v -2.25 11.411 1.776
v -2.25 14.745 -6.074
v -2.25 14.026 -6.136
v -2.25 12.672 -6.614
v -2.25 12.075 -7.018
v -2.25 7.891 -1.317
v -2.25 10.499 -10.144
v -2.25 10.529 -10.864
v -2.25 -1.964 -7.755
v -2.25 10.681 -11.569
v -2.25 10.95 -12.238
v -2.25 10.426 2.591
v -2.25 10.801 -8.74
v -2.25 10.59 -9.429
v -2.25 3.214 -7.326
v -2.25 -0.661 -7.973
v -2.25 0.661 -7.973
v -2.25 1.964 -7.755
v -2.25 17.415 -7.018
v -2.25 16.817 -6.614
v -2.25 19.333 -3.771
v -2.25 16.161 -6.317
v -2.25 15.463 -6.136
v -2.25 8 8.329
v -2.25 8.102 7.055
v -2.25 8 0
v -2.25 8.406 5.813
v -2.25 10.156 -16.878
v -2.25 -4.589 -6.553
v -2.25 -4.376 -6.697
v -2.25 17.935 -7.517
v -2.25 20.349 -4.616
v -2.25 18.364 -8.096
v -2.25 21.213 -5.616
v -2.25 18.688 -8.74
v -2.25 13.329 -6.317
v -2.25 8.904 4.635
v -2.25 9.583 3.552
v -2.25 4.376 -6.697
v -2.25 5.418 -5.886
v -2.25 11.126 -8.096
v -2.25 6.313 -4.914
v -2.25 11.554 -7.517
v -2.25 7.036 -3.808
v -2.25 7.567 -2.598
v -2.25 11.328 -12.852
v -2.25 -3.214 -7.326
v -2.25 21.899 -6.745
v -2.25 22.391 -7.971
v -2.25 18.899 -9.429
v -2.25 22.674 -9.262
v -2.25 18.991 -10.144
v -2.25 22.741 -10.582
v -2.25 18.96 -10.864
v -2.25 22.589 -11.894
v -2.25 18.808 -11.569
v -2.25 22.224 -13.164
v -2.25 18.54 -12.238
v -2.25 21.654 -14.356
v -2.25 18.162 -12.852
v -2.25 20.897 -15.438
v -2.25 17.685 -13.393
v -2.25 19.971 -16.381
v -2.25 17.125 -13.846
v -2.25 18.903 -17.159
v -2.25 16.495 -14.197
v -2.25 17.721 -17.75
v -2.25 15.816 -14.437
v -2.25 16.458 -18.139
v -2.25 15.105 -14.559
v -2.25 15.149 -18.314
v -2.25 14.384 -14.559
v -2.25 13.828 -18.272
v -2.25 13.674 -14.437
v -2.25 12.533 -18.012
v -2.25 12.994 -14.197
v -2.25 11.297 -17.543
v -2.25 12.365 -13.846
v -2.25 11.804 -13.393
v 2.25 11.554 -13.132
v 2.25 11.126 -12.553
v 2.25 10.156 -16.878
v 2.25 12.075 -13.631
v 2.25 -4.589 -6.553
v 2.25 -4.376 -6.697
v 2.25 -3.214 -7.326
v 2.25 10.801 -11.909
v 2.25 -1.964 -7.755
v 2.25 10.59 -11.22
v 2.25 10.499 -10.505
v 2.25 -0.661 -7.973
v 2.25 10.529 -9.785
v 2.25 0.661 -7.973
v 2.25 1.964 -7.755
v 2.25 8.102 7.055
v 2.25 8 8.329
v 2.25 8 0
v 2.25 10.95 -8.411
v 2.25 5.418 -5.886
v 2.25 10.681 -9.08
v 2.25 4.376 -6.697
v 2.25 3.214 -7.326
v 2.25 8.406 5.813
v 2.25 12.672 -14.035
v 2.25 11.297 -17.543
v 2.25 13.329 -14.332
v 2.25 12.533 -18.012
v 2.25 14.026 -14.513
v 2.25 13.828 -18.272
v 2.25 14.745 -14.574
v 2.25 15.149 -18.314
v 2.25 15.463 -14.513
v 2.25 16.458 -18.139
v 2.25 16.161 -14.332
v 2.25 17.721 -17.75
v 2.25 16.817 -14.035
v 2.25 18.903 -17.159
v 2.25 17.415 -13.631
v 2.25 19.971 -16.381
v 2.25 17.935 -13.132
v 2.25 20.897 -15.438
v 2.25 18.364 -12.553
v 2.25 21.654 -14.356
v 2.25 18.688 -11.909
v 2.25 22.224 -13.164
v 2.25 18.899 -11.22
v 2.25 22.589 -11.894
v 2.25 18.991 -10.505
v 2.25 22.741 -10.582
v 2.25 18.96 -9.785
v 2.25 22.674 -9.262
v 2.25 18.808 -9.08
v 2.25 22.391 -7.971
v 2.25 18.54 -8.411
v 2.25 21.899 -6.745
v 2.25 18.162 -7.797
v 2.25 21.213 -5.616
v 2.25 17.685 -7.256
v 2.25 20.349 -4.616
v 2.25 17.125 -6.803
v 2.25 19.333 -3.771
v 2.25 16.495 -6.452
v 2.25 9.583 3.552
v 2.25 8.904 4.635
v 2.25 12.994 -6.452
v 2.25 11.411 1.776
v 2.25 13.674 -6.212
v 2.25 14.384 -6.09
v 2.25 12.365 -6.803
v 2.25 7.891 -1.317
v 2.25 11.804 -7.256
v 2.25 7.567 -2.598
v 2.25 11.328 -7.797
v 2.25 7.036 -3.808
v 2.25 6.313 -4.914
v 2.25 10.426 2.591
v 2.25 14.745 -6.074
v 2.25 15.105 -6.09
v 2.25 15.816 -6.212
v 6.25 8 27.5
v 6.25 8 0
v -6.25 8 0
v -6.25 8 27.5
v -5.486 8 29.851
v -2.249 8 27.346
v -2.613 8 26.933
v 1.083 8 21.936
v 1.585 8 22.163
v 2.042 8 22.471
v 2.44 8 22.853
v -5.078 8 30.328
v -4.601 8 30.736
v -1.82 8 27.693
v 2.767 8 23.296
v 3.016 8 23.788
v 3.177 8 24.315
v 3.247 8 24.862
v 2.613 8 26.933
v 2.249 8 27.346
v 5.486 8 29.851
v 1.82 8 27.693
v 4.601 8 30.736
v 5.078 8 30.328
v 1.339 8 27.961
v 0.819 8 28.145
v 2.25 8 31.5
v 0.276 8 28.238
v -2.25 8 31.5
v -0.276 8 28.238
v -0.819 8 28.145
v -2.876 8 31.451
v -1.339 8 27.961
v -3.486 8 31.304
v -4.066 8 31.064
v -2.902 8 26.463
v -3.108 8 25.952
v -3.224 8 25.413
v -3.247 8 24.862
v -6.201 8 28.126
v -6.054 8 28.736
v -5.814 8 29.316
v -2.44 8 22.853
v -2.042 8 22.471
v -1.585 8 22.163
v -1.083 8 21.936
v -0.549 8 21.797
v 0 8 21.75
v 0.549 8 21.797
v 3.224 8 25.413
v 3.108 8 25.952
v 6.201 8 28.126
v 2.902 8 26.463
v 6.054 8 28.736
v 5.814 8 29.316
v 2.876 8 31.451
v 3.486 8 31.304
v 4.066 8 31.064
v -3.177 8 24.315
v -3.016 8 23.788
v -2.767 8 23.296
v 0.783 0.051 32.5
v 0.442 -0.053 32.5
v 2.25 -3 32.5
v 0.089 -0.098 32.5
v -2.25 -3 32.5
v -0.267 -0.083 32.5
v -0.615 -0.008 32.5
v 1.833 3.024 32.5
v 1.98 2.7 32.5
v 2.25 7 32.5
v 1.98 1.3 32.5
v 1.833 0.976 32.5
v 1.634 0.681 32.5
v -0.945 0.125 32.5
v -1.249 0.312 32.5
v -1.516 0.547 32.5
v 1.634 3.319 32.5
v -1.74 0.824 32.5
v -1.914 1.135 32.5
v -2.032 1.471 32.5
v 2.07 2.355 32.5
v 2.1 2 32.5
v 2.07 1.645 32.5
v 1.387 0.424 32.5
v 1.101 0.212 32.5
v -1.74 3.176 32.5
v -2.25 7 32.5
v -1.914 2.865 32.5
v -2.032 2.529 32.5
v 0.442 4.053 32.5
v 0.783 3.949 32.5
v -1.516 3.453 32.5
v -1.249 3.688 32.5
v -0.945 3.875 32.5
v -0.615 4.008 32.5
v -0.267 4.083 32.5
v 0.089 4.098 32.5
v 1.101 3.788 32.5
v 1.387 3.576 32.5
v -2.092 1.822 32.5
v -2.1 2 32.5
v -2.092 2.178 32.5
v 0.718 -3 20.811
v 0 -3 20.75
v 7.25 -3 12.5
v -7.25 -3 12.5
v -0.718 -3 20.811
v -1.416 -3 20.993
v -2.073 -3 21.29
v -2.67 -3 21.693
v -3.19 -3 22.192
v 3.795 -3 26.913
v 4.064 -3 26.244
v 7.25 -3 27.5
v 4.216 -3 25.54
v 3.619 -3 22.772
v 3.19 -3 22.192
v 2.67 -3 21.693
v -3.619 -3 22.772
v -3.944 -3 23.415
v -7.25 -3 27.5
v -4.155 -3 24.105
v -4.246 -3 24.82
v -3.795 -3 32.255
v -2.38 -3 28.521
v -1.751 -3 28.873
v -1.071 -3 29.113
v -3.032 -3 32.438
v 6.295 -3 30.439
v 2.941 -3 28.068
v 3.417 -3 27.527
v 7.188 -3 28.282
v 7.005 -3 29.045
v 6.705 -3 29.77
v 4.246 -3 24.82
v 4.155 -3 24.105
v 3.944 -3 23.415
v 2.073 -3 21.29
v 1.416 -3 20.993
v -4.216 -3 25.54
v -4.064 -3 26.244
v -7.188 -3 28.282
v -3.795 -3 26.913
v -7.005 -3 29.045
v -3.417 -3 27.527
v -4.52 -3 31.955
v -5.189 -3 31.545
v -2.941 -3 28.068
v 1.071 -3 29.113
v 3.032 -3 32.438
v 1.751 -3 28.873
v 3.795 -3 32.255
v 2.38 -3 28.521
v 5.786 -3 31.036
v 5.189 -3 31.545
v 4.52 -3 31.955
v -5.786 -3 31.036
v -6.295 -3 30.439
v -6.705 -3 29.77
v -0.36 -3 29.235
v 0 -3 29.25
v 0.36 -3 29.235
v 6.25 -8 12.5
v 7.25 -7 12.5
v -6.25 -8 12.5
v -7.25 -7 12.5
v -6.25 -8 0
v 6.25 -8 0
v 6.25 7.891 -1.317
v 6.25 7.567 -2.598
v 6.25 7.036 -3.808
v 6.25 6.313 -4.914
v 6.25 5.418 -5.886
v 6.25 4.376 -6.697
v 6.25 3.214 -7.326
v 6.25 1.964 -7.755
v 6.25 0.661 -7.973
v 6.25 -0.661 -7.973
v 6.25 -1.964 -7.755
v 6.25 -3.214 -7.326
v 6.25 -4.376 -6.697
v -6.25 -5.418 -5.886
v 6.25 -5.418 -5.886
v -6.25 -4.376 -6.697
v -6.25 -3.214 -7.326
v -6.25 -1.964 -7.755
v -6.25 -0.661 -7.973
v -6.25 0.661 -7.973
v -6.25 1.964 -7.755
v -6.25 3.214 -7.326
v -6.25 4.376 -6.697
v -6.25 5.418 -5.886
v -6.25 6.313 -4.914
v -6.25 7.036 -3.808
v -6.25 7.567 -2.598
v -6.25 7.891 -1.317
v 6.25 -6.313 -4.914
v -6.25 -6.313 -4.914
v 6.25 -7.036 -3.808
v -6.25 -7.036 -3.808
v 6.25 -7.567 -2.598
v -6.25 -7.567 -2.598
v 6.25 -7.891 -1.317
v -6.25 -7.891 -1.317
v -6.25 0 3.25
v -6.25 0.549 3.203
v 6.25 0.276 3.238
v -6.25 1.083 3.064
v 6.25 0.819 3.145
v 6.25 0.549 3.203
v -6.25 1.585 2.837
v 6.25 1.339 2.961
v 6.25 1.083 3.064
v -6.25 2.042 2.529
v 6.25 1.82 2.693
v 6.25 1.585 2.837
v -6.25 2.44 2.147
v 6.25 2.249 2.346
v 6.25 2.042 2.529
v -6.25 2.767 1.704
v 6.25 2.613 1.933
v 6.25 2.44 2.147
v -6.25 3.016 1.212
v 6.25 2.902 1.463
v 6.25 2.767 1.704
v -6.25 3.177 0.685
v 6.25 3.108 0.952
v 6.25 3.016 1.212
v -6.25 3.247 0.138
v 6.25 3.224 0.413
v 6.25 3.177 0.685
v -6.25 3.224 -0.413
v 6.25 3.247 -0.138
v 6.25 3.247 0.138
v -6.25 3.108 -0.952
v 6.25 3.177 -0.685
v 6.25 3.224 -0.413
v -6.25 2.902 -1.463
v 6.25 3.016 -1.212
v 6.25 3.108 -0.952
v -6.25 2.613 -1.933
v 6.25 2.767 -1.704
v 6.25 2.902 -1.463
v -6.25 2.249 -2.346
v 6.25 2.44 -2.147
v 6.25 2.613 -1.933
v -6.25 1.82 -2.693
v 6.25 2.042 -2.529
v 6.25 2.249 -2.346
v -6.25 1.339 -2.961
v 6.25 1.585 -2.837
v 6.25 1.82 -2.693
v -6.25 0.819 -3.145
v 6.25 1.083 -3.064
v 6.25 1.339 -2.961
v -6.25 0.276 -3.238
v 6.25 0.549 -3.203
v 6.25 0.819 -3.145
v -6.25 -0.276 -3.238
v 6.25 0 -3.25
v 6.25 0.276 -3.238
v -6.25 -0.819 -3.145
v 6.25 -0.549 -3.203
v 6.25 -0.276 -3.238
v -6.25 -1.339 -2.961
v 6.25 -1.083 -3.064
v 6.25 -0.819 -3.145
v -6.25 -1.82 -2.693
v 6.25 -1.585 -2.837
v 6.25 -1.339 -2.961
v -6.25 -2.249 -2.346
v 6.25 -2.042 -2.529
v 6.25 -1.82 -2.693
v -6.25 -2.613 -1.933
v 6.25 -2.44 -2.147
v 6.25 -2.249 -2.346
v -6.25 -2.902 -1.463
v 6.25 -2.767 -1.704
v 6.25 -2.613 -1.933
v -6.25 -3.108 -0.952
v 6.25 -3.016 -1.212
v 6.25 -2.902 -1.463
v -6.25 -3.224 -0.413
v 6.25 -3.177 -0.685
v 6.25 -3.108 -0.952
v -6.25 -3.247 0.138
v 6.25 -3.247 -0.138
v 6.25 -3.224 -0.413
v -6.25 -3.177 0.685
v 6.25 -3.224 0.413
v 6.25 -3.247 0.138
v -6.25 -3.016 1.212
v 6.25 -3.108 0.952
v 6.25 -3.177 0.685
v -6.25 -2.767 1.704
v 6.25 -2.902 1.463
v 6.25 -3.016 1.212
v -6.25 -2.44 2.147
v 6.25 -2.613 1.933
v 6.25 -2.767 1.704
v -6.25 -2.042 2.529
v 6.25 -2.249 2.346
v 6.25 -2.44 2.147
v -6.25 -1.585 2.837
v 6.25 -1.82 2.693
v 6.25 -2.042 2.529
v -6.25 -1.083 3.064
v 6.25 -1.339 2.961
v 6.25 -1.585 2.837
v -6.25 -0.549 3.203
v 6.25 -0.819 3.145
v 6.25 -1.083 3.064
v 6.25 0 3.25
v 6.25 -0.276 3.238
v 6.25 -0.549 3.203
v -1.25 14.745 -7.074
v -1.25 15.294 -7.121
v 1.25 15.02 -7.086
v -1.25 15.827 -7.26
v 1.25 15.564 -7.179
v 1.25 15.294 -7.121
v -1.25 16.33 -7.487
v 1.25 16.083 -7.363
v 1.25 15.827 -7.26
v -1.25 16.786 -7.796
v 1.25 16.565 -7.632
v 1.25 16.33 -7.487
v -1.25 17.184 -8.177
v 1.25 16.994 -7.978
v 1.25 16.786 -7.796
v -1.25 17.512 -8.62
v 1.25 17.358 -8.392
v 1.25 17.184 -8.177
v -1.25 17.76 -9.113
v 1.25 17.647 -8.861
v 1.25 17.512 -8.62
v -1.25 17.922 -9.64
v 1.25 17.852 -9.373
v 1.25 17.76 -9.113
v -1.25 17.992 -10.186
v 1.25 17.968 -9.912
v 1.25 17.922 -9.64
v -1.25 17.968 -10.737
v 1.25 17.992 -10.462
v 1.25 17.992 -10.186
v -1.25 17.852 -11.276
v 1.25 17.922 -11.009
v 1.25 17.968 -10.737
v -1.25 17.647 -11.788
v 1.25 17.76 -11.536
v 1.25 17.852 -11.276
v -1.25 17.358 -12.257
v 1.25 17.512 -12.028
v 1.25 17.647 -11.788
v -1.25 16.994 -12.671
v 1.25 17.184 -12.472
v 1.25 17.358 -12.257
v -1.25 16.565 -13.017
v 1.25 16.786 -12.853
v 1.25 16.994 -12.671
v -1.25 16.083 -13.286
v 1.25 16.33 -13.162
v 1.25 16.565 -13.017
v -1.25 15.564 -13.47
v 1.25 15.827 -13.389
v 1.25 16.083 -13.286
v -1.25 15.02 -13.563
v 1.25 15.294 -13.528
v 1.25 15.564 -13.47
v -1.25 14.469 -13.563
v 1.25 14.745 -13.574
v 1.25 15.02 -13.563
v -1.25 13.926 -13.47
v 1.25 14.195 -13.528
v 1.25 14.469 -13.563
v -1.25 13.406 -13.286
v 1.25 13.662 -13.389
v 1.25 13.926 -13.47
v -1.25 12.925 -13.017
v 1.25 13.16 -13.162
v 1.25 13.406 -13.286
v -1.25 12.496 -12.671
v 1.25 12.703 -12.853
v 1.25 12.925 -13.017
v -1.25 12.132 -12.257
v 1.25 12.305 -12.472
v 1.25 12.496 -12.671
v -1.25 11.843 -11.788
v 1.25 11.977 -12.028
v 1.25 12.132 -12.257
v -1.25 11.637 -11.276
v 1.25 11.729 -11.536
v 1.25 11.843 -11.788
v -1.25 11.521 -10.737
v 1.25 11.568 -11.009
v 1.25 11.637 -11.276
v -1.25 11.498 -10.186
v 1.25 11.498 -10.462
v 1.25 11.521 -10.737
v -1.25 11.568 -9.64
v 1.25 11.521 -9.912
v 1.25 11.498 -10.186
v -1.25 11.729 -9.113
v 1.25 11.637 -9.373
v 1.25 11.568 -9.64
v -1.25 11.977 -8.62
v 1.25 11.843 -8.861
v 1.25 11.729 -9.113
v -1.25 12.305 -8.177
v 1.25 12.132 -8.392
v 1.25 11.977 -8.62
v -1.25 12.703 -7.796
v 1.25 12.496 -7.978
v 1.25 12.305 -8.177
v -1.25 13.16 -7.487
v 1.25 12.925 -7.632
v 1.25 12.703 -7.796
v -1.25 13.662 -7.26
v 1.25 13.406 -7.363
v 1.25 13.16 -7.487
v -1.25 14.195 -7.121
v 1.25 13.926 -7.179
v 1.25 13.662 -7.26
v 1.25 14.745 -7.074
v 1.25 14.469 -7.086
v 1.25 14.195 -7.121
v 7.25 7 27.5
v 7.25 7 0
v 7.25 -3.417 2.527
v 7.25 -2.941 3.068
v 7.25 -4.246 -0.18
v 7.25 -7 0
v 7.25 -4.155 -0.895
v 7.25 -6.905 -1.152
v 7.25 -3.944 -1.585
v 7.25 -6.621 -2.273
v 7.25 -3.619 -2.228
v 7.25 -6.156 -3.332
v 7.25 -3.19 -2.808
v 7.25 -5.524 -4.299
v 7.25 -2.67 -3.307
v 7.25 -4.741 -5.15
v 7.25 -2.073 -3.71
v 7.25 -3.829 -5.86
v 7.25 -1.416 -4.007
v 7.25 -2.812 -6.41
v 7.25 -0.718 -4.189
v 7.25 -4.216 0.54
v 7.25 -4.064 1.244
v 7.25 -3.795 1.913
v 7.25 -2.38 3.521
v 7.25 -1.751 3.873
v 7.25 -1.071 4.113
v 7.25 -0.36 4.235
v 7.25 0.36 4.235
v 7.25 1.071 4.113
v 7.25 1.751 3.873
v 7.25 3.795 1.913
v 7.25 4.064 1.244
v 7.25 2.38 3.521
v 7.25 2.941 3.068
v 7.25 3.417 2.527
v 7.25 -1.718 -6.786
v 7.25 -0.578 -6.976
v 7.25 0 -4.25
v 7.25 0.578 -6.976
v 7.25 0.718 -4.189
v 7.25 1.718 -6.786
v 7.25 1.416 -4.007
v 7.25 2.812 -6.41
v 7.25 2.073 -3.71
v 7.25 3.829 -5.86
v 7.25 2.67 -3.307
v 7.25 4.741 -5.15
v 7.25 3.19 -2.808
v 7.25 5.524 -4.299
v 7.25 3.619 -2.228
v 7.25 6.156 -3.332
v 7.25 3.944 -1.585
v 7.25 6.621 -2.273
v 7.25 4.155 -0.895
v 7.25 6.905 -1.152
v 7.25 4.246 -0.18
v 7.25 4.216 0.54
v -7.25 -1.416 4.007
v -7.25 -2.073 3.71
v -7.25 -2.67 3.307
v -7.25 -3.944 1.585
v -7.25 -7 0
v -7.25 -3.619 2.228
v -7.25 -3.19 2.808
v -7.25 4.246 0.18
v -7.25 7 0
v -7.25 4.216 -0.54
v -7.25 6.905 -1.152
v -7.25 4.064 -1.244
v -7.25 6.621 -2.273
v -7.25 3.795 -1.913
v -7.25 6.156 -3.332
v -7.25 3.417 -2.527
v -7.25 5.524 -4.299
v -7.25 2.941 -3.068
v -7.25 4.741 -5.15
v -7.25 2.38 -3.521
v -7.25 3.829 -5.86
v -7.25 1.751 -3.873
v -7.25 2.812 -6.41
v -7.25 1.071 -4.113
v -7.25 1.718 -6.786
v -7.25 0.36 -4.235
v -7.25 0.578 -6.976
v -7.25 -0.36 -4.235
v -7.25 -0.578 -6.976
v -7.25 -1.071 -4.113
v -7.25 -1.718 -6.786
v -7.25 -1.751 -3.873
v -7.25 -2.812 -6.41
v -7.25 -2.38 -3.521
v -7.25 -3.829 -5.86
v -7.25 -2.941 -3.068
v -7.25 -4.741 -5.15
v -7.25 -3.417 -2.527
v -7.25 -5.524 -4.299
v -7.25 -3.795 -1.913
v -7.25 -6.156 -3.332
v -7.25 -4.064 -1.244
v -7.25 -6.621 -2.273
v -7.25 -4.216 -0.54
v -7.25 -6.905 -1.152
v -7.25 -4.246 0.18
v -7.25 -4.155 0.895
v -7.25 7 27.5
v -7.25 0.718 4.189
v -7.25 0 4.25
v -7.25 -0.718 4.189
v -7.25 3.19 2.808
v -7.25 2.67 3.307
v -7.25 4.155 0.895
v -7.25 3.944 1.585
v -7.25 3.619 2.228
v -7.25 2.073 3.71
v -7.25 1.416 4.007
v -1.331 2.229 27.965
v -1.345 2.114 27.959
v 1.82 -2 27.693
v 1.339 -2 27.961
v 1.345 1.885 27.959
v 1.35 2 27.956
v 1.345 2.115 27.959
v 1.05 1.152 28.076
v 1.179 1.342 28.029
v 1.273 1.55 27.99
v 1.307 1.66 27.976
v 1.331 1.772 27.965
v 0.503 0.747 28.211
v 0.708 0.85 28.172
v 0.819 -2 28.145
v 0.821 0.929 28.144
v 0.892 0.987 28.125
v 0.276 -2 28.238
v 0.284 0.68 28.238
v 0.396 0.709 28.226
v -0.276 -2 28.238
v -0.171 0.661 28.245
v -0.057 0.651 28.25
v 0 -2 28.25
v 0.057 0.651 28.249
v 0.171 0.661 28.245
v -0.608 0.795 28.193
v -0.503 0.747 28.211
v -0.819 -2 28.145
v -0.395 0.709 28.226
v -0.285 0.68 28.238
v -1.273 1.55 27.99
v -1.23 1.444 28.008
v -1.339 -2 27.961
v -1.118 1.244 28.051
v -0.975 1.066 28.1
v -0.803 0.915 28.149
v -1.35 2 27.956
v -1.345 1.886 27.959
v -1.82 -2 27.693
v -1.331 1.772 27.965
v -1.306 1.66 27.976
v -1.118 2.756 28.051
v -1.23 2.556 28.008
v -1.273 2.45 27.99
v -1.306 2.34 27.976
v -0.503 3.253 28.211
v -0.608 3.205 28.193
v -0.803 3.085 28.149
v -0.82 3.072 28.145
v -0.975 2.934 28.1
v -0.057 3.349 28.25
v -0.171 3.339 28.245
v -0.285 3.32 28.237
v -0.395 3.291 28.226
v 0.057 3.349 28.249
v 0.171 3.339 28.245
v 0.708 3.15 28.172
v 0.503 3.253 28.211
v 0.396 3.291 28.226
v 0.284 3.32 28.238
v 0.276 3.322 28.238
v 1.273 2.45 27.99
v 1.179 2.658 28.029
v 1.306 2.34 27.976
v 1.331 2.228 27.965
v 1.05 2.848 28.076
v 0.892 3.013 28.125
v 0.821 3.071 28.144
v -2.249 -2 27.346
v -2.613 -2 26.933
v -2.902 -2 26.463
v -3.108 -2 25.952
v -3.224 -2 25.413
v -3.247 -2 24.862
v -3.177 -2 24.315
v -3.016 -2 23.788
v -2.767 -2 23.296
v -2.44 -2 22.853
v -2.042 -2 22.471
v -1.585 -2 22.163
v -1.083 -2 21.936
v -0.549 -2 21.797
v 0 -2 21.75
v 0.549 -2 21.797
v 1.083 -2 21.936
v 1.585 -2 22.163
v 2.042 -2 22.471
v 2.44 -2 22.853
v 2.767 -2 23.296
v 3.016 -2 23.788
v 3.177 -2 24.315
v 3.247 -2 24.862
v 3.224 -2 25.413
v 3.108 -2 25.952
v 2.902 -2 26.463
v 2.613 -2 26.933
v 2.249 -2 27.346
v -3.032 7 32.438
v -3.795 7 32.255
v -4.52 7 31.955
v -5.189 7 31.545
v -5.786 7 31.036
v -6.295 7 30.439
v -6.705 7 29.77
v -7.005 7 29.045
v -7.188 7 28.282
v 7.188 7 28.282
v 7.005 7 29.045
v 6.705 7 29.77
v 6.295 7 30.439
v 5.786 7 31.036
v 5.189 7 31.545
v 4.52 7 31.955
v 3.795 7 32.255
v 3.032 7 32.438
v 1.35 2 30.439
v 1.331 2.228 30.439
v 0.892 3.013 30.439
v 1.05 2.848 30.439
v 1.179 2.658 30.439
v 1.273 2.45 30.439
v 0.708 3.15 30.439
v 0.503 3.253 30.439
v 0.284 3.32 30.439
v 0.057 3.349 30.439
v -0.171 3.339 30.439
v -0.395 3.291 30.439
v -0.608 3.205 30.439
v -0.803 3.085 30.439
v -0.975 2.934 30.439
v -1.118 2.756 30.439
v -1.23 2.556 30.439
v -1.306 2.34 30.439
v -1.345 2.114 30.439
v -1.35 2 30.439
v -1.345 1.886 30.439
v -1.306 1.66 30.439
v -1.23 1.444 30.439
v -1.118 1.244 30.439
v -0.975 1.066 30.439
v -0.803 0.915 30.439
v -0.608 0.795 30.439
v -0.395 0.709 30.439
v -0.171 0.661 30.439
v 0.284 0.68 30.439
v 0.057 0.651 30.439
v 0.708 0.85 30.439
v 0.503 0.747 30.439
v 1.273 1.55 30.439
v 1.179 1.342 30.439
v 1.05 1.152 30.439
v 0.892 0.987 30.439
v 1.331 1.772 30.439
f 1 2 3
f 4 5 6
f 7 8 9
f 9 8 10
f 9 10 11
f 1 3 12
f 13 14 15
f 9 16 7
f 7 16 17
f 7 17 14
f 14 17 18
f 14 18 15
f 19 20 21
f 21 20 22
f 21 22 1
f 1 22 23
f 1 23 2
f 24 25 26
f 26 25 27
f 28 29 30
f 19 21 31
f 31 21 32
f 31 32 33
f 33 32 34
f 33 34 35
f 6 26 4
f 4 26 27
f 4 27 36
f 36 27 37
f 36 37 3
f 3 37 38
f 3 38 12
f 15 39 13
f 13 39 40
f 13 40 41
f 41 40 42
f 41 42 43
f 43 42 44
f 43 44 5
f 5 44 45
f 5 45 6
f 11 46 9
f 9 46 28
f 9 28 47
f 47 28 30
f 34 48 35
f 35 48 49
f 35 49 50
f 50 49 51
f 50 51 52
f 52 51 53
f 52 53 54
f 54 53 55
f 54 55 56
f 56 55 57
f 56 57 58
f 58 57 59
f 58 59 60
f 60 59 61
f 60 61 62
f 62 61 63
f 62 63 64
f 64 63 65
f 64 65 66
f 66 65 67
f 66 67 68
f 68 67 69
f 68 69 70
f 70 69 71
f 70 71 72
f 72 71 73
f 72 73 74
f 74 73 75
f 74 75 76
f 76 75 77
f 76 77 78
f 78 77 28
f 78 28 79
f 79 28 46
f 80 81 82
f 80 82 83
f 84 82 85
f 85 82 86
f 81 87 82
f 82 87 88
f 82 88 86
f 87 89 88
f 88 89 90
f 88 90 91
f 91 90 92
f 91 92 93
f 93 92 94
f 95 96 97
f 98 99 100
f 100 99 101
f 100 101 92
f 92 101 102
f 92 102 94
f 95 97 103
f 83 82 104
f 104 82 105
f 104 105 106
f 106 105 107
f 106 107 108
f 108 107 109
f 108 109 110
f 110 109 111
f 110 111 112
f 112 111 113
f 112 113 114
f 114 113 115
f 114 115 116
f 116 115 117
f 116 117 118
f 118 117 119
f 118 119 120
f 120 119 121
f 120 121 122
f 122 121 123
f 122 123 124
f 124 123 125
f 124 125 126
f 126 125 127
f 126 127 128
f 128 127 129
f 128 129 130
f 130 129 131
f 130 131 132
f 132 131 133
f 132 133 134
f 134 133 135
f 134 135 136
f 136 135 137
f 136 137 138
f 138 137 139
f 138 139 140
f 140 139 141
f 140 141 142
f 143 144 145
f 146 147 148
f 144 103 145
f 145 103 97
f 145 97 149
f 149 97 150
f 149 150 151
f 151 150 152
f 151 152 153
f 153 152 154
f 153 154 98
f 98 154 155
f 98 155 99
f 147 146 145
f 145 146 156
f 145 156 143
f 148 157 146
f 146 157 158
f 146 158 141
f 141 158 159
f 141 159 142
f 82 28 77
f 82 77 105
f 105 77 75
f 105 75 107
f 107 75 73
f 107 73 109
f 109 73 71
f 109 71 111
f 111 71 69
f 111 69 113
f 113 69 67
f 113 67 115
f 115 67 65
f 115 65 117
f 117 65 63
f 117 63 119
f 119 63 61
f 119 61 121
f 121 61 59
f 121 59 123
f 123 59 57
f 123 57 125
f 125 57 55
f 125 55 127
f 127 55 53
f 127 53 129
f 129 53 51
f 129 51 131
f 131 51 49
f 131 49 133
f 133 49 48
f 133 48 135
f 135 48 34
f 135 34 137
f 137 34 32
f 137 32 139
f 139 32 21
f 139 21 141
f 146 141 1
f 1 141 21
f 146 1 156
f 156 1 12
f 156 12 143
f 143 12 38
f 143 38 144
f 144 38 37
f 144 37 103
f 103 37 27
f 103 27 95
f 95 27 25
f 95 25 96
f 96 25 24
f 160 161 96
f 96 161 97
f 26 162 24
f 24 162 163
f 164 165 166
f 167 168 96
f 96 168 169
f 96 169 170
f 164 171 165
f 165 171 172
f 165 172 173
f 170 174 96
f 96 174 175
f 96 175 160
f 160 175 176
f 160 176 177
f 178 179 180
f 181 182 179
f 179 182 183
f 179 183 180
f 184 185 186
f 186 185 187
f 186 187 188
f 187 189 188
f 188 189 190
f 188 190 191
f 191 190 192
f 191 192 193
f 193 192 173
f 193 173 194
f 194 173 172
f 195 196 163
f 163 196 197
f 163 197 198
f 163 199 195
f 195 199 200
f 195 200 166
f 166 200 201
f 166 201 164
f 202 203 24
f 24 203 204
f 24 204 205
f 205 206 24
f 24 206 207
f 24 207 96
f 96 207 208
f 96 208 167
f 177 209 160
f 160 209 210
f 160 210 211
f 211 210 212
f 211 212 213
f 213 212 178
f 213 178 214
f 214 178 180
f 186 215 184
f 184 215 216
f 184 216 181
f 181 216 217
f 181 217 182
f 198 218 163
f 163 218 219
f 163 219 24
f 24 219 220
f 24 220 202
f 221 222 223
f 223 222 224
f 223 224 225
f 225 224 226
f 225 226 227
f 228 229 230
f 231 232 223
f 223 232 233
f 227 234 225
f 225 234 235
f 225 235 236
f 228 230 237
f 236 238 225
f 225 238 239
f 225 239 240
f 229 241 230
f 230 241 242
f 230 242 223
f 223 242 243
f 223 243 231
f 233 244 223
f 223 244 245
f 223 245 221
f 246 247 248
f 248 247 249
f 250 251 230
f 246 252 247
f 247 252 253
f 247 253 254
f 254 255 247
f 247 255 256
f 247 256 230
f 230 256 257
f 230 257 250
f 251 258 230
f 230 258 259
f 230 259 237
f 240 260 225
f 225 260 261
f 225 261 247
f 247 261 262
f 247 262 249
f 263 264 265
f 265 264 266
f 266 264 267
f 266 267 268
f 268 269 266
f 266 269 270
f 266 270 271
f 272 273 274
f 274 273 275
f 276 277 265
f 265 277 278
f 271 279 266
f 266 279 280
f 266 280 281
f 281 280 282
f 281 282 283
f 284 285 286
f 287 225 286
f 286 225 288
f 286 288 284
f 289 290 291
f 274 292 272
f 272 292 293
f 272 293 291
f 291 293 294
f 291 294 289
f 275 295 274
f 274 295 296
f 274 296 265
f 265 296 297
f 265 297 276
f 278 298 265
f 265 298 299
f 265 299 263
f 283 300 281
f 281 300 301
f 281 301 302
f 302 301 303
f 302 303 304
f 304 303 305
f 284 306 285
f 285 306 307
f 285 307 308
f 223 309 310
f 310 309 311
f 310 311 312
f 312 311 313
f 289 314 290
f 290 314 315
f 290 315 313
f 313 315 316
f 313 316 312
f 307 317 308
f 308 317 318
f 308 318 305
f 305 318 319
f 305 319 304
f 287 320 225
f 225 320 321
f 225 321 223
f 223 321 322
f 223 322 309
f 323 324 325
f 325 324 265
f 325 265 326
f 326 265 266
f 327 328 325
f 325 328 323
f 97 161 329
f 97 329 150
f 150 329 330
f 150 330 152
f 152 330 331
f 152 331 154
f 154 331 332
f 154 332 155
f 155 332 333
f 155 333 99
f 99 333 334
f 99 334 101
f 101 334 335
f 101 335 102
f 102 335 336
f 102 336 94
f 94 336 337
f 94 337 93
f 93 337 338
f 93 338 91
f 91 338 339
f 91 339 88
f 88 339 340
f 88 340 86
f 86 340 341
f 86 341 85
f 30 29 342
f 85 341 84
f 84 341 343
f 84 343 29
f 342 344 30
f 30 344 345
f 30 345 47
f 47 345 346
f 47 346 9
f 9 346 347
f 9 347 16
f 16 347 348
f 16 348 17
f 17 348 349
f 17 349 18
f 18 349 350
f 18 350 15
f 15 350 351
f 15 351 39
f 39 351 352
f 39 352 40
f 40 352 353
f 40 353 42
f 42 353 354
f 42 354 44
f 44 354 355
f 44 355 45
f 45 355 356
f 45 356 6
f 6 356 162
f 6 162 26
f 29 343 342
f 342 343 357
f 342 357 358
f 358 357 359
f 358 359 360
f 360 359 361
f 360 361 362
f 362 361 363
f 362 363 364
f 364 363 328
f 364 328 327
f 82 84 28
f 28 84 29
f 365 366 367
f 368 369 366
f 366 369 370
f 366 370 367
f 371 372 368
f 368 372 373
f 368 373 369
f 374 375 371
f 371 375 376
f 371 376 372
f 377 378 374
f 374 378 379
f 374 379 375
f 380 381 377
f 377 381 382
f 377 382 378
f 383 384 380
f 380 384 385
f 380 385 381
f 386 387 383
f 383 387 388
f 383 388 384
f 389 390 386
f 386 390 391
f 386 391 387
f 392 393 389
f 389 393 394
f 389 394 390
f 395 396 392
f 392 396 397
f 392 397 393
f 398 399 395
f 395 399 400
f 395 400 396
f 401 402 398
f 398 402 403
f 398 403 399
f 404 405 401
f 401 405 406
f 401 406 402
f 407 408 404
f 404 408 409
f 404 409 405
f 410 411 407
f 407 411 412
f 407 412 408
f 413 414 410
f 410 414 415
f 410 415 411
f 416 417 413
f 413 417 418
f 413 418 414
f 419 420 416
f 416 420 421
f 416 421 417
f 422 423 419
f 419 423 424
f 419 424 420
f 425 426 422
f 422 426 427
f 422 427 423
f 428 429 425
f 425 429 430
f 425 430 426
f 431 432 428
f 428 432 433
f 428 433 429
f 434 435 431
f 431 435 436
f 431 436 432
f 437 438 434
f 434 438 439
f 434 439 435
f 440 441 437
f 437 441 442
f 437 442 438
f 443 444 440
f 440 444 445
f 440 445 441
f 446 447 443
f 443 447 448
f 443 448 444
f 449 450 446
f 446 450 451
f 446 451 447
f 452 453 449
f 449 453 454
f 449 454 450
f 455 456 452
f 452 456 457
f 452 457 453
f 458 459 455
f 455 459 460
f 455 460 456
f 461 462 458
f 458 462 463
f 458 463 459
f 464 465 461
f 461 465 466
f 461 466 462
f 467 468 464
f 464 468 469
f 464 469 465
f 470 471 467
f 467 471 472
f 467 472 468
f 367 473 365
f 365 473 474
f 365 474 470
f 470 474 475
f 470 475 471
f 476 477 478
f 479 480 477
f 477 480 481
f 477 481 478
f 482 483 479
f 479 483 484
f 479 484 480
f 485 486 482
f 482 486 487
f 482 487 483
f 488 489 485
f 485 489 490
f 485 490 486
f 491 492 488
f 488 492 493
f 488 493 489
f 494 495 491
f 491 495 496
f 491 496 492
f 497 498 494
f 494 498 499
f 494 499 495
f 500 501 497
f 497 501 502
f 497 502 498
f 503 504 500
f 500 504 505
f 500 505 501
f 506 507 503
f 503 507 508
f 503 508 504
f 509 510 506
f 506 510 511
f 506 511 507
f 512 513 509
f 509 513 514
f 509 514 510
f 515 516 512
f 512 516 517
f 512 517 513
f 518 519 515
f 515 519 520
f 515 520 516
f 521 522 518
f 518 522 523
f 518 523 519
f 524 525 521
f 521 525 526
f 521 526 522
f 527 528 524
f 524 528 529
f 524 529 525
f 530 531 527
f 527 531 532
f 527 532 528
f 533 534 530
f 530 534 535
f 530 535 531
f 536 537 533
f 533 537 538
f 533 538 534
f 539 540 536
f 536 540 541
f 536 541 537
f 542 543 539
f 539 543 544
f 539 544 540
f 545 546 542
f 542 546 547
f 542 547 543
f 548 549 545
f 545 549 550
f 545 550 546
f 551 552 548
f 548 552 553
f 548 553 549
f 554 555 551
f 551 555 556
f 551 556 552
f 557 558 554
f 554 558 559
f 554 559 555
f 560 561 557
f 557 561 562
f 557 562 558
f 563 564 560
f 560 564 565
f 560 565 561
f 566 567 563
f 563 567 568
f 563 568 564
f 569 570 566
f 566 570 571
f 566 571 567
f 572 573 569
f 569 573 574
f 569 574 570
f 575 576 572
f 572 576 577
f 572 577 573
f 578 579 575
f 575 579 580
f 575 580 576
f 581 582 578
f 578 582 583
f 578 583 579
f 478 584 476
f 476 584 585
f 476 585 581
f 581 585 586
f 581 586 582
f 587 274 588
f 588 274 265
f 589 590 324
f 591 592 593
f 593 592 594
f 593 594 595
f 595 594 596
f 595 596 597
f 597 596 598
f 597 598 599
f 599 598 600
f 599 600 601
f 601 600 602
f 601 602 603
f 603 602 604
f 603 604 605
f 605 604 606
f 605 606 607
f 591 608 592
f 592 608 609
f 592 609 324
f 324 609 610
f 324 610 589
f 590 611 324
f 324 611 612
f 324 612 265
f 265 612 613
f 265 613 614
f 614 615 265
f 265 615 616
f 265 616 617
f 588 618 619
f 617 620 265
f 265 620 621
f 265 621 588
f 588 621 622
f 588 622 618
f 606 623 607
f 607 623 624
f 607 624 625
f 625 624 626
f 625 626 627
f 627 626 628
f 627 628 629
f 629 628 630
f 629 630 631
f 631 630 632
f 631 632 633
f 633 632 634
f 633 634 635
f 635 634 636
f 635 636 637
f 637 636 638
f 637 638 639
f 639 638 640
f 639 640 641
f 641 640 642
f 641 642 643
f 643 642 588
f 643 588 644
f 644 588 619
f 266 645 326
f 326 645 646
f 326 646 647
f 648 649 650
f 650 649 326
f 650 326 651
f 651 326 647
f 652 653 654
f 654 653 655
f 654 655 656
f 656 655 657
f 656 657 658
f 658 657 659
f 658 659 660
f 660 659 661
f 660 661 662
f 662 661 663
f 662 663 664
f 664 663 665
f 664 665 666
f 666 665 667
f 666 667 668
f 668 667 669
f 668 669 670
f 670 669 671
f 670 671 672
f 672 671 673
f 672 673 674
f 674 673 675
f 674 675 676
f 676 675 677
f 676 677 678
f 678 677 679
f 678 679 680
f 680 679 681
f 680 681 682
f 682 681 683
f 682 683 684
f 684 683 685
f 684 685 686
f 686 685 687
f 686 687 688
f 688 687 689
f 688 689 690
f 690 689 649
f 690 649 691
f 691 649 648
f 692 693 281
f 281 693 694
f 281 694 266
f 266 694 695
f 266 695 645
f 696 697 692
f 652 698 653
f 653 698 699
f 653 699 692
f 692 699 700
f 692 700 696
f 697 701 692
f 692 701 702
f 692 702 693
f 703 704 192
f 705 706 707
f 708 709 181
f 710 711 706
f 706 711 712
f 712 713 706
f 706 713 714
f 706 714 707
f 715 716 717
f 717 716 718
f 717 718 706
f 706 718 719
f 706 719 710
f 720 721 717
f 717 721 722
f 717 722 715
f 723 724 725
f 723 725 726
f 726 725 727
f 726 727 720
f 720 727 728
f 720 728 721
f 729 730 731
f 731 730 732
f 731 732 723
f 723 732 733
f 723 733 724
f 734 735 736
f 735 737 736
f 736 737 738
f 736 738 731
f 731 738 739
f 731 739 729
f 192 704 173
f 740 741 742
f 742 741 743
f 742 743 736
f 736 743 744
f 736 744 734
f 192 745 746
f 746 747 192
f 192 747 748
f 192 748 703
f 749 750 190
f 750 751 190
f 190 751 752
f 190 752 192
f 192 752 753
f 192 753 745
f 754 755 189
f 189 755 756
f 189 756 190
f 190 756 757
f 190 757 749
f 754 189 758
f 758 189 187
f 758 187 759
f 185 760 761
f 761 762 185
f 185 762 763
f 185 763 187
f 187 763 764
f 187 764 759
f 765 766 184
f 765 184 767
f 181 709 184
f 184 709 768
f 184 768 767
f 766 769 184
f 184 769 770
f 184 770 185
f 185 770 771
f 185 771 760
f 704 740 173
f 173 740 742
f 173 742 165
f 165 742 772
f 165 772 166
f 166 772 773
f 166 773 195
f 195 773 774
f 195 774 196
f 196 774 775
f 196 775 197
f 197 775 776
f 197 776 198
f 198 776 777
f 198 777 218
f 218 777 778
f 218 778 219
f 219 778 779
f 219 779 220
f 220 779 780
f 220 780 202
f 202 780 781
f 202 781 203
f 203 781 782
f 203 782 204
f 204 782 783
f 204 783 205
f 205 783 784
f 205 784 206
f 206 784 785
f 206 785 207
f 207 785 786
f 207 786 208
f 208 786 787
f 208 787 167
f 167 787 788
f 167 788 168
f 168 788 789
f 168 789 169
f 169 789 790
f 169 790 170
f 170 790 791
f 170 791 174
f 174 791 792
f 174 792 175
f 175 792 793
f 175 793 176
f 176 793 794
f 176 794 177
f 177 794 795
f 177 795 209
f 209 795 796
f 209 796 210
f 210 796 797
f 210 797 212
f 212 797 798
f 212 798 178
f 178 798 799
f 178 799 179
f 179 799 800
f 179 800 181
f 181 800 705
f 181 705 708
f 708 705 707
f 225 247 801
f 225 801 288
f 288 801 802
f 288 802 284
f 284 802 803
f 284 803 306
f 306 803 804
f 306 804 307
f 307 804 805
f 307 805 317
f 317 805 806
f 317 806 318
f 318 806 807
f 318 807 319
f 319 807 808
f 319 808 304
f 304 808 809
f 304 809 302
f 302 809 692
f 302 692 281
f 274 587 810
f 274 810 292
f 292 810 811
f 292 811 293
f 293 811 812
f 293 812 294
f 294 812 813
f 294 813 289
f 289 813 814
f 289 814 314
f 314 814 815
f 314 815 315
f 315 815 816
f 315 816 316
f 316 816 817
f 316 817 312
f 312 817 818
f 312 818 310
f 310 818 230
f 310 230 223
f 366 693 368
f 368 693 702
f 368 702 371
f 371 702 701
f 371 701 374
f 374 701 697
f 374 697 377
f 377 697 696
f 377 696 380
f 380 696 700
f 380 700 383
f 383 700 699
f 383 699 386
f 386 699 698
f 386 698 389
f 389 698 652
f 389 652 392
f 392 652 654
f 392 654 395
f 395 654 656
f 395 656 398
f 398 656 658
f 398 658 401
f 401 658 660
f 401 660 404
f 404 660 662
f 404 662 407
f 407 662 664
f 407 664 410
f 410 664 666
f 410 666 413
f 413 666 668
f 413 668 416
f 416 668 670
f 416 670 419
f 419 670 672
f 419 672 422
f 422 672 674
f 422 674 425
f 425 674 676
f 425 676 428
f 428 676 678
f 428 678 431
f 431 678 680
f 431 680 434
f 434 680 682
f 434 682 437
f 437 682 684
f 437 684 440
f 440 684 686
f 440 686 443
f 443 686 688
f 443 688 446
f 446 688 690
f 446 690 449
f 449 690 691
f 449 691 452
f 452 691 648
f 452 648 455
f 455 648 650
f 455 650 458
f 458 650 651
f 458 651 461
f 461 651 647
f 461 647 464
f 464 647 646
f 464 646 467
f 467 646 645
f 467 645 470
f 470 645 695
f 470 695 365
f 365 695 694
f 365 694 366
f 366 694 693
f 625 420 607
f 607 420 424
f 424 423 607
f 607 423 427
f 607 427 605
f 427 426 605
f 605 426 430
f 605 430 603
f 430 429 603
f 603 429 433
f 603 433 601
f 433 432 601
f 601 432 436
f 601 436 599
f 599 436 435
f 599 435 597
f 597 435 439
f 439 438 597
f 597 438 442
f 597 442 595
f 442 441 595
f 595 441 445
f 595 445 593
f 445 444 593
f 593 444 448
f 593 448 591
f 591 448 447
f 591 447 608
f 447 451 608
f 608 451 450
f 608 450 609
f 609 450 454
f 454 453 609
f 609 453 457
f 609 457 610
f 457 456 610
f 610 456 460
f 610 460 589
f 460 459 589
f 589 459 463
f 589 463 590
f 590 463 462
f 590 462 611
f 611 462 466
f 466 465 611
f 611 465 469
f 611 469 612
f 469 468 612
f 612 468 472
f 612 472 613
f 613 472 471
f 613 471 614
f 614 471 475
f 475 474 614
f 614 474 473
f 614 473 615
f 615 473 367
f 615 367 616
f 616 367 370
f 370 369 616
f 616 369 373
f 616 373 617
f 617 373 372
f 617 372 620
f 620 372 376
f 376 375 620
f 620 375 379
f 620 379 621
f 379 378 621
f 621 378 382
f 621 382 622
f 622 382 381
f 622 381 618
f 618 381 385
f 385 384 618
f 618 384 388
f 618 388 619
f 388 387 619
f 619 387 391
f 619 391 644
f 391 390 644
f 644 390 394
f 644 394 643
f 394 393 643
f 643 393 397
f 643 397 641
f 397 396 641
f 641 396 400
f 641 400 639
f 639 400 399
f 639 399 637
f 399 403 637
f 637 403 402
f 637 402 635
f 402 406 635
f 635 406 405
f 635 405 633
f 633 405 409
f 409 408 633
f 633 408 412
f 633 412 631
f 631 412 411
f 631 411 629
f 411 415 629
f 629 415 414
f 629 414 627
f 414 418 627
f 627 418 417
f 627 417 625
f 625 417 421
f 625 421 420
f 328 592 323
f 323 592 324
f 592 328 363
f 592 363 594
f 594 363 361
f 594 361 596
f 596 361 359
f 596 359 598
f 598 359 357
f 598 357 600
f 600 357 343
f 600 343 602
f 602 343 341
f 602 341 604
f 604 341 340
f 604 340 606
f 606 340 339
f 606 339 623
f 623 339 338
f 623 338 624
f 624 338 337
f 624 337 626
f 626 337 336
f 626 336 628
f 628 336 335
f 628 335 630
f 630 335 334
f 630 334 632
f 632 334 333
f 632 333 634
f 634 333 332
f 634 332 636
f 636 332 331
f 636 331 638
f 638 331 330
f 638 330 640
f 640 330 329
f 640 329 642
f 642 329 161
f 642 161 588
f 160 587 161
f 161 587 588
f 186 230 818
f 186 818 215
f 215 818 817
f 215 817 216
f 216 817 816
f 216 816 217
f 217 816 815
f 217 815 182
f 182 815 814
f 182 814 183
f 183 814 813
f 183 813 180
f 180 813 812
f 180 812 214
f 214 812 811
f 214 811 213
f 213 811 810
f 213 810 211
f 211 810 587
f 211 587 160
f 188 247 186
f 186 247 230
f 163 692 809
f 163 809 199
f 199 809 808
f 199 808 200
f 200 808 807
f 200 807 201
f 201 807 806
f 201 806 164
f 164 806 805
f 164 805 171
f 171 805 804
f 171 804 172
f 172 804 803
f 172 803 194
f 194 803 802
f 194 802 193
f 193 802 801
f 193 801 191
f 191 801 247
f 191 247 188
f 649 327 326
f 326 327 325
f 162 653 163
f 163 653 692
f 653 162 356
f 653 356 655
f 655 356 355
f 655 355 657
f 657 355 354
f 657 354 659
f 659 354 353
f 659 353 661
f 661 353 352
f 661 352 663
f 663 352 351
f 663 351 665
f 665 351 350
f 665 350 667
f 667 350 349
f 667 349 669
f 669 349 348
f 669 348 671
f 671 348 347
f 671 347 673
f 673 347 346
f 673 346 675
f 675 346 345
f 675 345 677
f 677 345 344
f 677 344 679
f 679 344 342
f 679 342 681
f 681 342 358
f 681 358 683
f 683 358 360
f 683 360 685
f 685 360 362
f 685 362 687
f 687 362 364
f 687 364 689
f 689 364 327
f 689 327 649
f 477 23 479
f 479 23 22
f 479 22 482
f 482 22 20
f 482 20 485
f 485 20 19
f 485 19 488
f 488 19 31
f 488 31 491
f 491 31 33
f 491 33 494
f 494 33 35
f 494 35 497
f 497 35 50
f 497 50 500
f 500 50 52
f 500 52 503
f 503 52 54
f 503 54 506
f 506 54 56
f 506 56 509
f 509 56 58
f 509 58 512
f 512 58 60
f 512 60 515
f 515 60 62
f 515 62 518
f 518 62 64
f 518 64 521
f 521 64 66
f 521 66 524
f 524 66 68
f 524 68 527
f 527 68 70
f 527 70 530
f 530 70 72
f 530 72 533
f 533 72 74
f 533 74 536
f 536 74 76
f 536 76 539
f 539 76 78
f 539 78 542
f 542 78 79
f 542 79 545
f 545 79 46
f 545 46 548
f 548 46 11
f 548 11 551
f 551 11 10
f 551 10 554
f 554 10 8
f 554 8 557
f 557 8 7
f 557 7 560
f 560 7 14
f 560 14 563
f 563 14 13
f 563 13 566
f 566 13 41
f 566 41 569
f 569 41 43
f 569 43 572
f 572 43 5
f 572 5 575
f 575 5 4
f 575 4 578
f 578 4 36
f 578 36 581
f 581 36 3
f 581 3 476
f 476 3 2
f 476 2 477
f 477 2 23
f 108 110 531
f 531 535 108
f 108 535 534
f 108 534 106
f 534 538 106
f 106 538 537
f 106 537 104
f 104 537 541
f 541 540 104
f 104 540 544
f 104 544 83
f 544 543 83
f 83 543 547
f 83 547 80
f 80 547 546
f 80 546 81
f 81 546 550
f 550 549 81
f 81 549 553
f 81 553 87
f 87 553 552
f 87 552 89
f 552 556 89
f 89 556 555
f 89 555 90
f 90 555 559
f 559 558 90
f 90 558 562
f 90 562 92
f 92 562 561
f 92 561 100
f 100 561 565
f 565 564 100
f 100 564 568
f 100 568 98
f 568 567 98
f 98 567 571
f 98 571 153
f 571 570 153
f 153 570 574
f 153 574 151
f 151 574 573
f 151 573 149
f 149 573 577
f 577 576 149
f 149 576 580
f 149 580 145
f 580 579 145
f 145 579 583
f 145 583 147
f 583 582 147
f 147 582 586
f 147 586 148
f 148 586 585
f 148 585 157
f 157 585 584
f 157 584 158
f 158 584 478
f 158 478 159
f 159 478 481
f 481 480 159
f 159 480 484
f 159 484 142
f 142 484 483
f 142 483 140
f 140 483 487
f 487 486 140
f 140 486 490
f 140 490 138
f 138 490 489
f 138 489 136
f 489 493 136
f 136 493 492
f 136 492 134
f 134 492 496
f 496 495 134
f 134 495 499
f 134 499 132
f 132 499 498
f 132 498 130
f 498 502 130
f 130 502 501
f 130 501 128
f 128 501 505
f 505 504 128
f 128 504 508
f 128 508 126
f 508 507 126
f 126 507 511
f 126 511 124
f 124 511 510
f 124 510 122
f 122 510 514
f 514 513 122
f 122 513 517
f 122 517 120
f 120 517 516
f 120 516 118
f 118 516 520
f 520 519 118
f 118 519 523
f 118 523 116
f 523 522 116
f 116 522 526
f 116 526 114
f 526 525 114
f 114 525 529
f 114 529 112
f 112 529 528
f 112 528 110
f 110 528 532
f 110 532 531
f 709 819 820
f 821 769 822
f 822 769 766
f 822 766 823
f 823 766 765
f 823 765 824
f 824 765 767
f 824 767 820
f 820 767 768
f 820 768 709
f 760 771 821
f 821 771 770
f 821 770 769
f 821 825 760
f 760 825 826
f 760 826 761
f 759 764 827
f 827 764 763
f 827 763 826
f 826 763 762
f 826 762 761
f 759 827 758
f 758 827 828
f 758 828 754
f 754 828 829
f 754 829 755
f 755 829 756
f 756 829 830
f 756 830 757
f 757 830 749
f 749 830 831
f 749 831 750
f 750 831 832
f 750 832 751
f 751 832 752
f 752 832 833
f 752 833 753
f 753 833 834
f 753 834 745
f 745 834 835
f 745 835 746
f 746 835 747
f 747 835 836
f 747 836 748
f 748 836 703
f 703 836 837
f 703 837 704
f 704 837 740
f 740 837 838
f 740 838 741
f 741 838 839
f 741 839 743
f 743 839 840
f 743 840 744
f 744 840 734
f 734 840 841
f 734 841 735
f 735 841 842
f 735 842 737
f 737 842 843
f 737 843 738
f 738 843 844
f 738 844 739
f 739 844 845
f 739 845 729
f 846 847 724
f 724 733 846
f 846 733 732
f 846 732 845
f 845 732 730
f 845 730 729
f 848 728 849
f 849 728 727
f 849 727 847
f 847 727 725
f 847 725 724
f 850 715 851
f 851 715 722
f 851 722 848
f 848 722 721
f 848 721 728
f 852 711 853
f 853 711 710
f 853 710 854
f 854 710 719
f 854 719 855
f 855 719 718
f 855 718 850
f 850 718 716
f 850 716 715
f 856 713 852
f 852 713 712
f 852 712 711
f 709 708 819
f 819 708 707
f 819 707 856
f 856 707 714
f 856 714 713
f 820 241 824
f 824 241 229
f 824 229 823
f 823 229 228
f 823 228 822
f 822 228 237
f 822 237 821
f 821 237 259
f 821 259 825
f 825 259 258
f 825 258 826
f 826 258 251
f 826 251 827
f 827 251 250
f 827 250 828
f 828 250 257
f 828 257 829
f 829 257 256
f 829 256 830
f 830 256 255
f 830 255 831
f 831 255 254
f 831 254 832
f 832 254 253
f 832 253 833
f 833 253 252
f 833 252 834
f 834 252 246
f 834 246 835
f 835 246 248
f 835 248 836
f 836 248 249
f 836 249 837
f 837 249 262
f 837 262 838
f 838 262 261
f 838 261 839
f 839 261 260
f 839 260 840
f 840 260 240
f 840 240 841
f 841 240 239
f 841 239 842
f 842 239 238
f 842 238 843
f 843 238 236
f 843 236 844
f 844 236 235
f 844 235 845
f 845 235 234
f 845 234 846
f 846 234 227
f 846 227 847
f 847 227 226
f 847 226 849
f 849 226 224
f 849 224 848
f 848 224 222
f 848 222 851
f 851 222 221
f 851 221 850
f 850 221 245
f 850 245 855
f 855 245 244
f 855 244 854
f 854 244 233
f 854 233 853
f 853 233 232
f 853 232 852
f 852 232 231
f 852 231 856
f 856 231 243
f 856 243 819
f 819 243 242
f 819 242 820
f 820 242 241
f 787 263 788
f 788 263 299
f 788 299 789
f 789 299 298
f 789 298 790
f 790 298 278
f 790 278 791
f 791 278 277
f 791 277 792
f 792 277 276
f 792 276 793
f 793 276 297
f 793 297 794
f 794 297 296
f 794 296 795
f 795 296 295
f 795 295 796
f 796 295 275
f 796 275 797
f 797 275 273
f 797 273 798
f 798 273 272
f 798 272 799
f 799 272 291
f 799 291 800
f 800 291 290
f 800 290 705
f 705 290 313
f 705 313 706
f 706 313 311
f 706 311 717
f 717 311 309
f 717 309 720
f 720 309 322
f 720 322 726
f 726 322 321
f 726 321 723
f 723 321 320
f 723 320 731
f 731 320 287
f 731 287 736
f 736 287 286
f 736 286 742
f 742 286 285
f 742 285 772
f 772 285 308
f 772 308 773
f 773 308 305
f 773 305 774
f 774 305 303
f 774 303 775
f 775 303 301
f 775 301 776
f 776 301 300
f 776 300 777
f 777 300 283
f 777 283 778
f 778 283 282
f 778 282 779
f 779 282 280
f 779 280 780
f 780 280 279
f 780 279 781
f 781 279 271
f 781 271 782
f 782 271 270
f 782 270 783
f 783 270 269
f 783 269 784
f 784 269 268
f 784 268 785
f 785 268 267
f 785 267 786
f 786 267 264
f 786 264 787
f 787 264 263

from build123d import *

# Parameters (mm, degrees)
SKETCH1_R           = 3.25
BOSS_EXTRUDE1_DEPTH = 2.25
SKETCH2_R           = 3.25
BOSS_EXTRUDE2_DEPTH = 5
SKETCH3_R           = 3.25
CUT_EXTRUDE1_DEPTH  = 26.744736797
FILLET1_R           = 5
CHAMFER1_SIZE       = 1
CUT_EXTRUDE2_REACH  = 52.824
SKETCH4_R           = 1.35
CHAMFER2_SIZE       = 0.75
CHAMFER2_SIZE2      = 2.060608065
CHAMFER3_SIZE       = 1


with BuildPart() as part:
    # Sketch1 → Boss-Extrude1 (new body, symmetric)
    with BuildSketch(Plane(origin=(0, 0, 0), x_dir=(0, 0, -1), z_dir=(1, 0, 0))):
        with BuildLine():
            Line((-1.775856455, 11.411388509), (3.7711595, 19.333348288))
            ThreePointArc((3.7711595, 19.333348288), (14.912987345, 21.297953152), (16.877592209, 10.156125306))
            Line((16.877592209, 10.156125306), (6.553216354, -4.588611491))
            ThreePointArc((6.553216354, -4.588611491), (3.693988906, -7.096086665), (0, -8))
            Line((0, -8), (-12.5, -8))
            Line((-12.5, -8), (-12.5, -3))
            Line((-12.5, -3), (-32.5, -3))
            Line((-32.5, -3), (-32.5, 8))
            Line((-32.5, 8), (-25, 8))
            Line((-25, 8), (-8.329072809, 8))
            ThreePointArc((-8.329072809, 8), (-4.635083903, 8.903913335), (-1.775856455, 11.411388509))
        make_face()
        Circle(SKETCH1_R, mode=Mode.SUBTRACT)
        with Locations((10.324375854, 14.744736797)):
            Circle(SKETCH1_R, mode=Mode.SUBTRACT)
    extrude(amount=BOSS_EXTRUDE1_DEPTH, both=True)

    # Sketch2 → Boss-Extrude2 (add)
    with BuildSketch(Plane(origin=(2.25, 0, 0), x_dir=(0, 0, -1), z_dir=(1, 0, 0))):
        with BuildLine():
            Line((-32.5, 8), (0, 8))
            ThreePointArc((0, 8), (8, 0), (0, -8))
            Line((0, -8), (-12.5, -8))
            Line((-12.5, -8), (-12.5, -3))
            Line((-12.5, -3), (-32.5, -3))
            Line((-32.5, -3), (-32.5, 8))
        make_face()
        Circle(SKETCH2_R, mode=Mode.SUBTRACT)
    boss_extrude2 = extrude(amount=BOSS_EXTRUDE2_DEPTH)

    # Mirror1: Boss-Extrude2 across plane
    add(boss_extrude2.mirror(Plane(origin=(0, 0, 0), x_dir=(0, 0, 1), z_dir=(1, 0, 0))))

    # Sketch3 → Cut-Extrude1 (cut, through all)
    with BuildSketch(Plane.XZ.offset(3)):
        with Locations((0, 25)):
            Circle(SKETCH3_R)
    extrude(amount=-CUT_EXTRUDE1_DEPTH, mode=Mode.SUBTRACT)

    # Fillet1
    fillet1_edges = [part.edges().sort_by_distance(p)[0] for p in [
        (7.25, 2.5, 32.5),
        (-7.25, 2.5, 32.5),
    ]]
    fillet(fillet1_edges, radius=FILLET1_R)

    # Chamfer1
    chamfer1_edges = [part.edges().sort_by_distance(p)[0] for p in [
        (0, 8, 32.5),
        (5.785533906, 8, 31.035533906),
        (-5.785533906, 8, 31.035533906),
        (-2.25, 14.744736797, -7.074375854),
        (2.25, 14.744736797, -7.074375854),
        (7.25, -8, 6.25),
        (7.25, 0, -8),
        (7.25, 8, 13.75),
        (7.25, 0, 3.25),
        (-7.25, 8, 13.75),
        (-7.25, 0, -8),
        (-7.25, -8, 6.25),
        (-7.25, 0, 3.25),
    ]]
    chamfer(chamfer1_edges, length=CHAMFER1_SIZE)

    # Sketch4 → Cut-Extrude2 (cut, up to next)
    with BuildSketch(Plane.XY.offset(32.5), mode=Mode.PRIVATE) as cut_extrude2_sk1:
        with Locations((0, 2)):
            Circle(SKETCH4_R)
    cut_extrude2_tool1 = extrude(cut_extrude2_sk1.sketch, amount=-CUT_EXTRUDE2_REACH, mode=Mode.PRIVATE) & part.part
    add(cut_extrude2_tool1.solids().sort_by_distance((0, 2, 32.5))[0], mode=Mode.SUBTRACT)

    # Chamfer2
    chamfer2_edges = [part.edges().sort_by_distance(p)[0] for p in [
        (-1.35, 2, 32.5),
    ]]
    chamfer2_side = [part.faces().sort_by_distance(p)[0] for p in [
        (-2.140341439, 2, 32.5),
    ]]
    chamfer(chamfer2_edges, length=CHAMFER2_SIZE, length2=CHAMFER2_SIZE2, reference=chamfer2_side[0])

    # Chamfer3
    chamfer3_edges = [part.edges().sort_by_distance(p)[0] for p in [
        (-3.25, -3, 25),
    ]]
    chamfer(chamfer3_edges, length=CHAMFER3_SIZE)


solid = part.part
